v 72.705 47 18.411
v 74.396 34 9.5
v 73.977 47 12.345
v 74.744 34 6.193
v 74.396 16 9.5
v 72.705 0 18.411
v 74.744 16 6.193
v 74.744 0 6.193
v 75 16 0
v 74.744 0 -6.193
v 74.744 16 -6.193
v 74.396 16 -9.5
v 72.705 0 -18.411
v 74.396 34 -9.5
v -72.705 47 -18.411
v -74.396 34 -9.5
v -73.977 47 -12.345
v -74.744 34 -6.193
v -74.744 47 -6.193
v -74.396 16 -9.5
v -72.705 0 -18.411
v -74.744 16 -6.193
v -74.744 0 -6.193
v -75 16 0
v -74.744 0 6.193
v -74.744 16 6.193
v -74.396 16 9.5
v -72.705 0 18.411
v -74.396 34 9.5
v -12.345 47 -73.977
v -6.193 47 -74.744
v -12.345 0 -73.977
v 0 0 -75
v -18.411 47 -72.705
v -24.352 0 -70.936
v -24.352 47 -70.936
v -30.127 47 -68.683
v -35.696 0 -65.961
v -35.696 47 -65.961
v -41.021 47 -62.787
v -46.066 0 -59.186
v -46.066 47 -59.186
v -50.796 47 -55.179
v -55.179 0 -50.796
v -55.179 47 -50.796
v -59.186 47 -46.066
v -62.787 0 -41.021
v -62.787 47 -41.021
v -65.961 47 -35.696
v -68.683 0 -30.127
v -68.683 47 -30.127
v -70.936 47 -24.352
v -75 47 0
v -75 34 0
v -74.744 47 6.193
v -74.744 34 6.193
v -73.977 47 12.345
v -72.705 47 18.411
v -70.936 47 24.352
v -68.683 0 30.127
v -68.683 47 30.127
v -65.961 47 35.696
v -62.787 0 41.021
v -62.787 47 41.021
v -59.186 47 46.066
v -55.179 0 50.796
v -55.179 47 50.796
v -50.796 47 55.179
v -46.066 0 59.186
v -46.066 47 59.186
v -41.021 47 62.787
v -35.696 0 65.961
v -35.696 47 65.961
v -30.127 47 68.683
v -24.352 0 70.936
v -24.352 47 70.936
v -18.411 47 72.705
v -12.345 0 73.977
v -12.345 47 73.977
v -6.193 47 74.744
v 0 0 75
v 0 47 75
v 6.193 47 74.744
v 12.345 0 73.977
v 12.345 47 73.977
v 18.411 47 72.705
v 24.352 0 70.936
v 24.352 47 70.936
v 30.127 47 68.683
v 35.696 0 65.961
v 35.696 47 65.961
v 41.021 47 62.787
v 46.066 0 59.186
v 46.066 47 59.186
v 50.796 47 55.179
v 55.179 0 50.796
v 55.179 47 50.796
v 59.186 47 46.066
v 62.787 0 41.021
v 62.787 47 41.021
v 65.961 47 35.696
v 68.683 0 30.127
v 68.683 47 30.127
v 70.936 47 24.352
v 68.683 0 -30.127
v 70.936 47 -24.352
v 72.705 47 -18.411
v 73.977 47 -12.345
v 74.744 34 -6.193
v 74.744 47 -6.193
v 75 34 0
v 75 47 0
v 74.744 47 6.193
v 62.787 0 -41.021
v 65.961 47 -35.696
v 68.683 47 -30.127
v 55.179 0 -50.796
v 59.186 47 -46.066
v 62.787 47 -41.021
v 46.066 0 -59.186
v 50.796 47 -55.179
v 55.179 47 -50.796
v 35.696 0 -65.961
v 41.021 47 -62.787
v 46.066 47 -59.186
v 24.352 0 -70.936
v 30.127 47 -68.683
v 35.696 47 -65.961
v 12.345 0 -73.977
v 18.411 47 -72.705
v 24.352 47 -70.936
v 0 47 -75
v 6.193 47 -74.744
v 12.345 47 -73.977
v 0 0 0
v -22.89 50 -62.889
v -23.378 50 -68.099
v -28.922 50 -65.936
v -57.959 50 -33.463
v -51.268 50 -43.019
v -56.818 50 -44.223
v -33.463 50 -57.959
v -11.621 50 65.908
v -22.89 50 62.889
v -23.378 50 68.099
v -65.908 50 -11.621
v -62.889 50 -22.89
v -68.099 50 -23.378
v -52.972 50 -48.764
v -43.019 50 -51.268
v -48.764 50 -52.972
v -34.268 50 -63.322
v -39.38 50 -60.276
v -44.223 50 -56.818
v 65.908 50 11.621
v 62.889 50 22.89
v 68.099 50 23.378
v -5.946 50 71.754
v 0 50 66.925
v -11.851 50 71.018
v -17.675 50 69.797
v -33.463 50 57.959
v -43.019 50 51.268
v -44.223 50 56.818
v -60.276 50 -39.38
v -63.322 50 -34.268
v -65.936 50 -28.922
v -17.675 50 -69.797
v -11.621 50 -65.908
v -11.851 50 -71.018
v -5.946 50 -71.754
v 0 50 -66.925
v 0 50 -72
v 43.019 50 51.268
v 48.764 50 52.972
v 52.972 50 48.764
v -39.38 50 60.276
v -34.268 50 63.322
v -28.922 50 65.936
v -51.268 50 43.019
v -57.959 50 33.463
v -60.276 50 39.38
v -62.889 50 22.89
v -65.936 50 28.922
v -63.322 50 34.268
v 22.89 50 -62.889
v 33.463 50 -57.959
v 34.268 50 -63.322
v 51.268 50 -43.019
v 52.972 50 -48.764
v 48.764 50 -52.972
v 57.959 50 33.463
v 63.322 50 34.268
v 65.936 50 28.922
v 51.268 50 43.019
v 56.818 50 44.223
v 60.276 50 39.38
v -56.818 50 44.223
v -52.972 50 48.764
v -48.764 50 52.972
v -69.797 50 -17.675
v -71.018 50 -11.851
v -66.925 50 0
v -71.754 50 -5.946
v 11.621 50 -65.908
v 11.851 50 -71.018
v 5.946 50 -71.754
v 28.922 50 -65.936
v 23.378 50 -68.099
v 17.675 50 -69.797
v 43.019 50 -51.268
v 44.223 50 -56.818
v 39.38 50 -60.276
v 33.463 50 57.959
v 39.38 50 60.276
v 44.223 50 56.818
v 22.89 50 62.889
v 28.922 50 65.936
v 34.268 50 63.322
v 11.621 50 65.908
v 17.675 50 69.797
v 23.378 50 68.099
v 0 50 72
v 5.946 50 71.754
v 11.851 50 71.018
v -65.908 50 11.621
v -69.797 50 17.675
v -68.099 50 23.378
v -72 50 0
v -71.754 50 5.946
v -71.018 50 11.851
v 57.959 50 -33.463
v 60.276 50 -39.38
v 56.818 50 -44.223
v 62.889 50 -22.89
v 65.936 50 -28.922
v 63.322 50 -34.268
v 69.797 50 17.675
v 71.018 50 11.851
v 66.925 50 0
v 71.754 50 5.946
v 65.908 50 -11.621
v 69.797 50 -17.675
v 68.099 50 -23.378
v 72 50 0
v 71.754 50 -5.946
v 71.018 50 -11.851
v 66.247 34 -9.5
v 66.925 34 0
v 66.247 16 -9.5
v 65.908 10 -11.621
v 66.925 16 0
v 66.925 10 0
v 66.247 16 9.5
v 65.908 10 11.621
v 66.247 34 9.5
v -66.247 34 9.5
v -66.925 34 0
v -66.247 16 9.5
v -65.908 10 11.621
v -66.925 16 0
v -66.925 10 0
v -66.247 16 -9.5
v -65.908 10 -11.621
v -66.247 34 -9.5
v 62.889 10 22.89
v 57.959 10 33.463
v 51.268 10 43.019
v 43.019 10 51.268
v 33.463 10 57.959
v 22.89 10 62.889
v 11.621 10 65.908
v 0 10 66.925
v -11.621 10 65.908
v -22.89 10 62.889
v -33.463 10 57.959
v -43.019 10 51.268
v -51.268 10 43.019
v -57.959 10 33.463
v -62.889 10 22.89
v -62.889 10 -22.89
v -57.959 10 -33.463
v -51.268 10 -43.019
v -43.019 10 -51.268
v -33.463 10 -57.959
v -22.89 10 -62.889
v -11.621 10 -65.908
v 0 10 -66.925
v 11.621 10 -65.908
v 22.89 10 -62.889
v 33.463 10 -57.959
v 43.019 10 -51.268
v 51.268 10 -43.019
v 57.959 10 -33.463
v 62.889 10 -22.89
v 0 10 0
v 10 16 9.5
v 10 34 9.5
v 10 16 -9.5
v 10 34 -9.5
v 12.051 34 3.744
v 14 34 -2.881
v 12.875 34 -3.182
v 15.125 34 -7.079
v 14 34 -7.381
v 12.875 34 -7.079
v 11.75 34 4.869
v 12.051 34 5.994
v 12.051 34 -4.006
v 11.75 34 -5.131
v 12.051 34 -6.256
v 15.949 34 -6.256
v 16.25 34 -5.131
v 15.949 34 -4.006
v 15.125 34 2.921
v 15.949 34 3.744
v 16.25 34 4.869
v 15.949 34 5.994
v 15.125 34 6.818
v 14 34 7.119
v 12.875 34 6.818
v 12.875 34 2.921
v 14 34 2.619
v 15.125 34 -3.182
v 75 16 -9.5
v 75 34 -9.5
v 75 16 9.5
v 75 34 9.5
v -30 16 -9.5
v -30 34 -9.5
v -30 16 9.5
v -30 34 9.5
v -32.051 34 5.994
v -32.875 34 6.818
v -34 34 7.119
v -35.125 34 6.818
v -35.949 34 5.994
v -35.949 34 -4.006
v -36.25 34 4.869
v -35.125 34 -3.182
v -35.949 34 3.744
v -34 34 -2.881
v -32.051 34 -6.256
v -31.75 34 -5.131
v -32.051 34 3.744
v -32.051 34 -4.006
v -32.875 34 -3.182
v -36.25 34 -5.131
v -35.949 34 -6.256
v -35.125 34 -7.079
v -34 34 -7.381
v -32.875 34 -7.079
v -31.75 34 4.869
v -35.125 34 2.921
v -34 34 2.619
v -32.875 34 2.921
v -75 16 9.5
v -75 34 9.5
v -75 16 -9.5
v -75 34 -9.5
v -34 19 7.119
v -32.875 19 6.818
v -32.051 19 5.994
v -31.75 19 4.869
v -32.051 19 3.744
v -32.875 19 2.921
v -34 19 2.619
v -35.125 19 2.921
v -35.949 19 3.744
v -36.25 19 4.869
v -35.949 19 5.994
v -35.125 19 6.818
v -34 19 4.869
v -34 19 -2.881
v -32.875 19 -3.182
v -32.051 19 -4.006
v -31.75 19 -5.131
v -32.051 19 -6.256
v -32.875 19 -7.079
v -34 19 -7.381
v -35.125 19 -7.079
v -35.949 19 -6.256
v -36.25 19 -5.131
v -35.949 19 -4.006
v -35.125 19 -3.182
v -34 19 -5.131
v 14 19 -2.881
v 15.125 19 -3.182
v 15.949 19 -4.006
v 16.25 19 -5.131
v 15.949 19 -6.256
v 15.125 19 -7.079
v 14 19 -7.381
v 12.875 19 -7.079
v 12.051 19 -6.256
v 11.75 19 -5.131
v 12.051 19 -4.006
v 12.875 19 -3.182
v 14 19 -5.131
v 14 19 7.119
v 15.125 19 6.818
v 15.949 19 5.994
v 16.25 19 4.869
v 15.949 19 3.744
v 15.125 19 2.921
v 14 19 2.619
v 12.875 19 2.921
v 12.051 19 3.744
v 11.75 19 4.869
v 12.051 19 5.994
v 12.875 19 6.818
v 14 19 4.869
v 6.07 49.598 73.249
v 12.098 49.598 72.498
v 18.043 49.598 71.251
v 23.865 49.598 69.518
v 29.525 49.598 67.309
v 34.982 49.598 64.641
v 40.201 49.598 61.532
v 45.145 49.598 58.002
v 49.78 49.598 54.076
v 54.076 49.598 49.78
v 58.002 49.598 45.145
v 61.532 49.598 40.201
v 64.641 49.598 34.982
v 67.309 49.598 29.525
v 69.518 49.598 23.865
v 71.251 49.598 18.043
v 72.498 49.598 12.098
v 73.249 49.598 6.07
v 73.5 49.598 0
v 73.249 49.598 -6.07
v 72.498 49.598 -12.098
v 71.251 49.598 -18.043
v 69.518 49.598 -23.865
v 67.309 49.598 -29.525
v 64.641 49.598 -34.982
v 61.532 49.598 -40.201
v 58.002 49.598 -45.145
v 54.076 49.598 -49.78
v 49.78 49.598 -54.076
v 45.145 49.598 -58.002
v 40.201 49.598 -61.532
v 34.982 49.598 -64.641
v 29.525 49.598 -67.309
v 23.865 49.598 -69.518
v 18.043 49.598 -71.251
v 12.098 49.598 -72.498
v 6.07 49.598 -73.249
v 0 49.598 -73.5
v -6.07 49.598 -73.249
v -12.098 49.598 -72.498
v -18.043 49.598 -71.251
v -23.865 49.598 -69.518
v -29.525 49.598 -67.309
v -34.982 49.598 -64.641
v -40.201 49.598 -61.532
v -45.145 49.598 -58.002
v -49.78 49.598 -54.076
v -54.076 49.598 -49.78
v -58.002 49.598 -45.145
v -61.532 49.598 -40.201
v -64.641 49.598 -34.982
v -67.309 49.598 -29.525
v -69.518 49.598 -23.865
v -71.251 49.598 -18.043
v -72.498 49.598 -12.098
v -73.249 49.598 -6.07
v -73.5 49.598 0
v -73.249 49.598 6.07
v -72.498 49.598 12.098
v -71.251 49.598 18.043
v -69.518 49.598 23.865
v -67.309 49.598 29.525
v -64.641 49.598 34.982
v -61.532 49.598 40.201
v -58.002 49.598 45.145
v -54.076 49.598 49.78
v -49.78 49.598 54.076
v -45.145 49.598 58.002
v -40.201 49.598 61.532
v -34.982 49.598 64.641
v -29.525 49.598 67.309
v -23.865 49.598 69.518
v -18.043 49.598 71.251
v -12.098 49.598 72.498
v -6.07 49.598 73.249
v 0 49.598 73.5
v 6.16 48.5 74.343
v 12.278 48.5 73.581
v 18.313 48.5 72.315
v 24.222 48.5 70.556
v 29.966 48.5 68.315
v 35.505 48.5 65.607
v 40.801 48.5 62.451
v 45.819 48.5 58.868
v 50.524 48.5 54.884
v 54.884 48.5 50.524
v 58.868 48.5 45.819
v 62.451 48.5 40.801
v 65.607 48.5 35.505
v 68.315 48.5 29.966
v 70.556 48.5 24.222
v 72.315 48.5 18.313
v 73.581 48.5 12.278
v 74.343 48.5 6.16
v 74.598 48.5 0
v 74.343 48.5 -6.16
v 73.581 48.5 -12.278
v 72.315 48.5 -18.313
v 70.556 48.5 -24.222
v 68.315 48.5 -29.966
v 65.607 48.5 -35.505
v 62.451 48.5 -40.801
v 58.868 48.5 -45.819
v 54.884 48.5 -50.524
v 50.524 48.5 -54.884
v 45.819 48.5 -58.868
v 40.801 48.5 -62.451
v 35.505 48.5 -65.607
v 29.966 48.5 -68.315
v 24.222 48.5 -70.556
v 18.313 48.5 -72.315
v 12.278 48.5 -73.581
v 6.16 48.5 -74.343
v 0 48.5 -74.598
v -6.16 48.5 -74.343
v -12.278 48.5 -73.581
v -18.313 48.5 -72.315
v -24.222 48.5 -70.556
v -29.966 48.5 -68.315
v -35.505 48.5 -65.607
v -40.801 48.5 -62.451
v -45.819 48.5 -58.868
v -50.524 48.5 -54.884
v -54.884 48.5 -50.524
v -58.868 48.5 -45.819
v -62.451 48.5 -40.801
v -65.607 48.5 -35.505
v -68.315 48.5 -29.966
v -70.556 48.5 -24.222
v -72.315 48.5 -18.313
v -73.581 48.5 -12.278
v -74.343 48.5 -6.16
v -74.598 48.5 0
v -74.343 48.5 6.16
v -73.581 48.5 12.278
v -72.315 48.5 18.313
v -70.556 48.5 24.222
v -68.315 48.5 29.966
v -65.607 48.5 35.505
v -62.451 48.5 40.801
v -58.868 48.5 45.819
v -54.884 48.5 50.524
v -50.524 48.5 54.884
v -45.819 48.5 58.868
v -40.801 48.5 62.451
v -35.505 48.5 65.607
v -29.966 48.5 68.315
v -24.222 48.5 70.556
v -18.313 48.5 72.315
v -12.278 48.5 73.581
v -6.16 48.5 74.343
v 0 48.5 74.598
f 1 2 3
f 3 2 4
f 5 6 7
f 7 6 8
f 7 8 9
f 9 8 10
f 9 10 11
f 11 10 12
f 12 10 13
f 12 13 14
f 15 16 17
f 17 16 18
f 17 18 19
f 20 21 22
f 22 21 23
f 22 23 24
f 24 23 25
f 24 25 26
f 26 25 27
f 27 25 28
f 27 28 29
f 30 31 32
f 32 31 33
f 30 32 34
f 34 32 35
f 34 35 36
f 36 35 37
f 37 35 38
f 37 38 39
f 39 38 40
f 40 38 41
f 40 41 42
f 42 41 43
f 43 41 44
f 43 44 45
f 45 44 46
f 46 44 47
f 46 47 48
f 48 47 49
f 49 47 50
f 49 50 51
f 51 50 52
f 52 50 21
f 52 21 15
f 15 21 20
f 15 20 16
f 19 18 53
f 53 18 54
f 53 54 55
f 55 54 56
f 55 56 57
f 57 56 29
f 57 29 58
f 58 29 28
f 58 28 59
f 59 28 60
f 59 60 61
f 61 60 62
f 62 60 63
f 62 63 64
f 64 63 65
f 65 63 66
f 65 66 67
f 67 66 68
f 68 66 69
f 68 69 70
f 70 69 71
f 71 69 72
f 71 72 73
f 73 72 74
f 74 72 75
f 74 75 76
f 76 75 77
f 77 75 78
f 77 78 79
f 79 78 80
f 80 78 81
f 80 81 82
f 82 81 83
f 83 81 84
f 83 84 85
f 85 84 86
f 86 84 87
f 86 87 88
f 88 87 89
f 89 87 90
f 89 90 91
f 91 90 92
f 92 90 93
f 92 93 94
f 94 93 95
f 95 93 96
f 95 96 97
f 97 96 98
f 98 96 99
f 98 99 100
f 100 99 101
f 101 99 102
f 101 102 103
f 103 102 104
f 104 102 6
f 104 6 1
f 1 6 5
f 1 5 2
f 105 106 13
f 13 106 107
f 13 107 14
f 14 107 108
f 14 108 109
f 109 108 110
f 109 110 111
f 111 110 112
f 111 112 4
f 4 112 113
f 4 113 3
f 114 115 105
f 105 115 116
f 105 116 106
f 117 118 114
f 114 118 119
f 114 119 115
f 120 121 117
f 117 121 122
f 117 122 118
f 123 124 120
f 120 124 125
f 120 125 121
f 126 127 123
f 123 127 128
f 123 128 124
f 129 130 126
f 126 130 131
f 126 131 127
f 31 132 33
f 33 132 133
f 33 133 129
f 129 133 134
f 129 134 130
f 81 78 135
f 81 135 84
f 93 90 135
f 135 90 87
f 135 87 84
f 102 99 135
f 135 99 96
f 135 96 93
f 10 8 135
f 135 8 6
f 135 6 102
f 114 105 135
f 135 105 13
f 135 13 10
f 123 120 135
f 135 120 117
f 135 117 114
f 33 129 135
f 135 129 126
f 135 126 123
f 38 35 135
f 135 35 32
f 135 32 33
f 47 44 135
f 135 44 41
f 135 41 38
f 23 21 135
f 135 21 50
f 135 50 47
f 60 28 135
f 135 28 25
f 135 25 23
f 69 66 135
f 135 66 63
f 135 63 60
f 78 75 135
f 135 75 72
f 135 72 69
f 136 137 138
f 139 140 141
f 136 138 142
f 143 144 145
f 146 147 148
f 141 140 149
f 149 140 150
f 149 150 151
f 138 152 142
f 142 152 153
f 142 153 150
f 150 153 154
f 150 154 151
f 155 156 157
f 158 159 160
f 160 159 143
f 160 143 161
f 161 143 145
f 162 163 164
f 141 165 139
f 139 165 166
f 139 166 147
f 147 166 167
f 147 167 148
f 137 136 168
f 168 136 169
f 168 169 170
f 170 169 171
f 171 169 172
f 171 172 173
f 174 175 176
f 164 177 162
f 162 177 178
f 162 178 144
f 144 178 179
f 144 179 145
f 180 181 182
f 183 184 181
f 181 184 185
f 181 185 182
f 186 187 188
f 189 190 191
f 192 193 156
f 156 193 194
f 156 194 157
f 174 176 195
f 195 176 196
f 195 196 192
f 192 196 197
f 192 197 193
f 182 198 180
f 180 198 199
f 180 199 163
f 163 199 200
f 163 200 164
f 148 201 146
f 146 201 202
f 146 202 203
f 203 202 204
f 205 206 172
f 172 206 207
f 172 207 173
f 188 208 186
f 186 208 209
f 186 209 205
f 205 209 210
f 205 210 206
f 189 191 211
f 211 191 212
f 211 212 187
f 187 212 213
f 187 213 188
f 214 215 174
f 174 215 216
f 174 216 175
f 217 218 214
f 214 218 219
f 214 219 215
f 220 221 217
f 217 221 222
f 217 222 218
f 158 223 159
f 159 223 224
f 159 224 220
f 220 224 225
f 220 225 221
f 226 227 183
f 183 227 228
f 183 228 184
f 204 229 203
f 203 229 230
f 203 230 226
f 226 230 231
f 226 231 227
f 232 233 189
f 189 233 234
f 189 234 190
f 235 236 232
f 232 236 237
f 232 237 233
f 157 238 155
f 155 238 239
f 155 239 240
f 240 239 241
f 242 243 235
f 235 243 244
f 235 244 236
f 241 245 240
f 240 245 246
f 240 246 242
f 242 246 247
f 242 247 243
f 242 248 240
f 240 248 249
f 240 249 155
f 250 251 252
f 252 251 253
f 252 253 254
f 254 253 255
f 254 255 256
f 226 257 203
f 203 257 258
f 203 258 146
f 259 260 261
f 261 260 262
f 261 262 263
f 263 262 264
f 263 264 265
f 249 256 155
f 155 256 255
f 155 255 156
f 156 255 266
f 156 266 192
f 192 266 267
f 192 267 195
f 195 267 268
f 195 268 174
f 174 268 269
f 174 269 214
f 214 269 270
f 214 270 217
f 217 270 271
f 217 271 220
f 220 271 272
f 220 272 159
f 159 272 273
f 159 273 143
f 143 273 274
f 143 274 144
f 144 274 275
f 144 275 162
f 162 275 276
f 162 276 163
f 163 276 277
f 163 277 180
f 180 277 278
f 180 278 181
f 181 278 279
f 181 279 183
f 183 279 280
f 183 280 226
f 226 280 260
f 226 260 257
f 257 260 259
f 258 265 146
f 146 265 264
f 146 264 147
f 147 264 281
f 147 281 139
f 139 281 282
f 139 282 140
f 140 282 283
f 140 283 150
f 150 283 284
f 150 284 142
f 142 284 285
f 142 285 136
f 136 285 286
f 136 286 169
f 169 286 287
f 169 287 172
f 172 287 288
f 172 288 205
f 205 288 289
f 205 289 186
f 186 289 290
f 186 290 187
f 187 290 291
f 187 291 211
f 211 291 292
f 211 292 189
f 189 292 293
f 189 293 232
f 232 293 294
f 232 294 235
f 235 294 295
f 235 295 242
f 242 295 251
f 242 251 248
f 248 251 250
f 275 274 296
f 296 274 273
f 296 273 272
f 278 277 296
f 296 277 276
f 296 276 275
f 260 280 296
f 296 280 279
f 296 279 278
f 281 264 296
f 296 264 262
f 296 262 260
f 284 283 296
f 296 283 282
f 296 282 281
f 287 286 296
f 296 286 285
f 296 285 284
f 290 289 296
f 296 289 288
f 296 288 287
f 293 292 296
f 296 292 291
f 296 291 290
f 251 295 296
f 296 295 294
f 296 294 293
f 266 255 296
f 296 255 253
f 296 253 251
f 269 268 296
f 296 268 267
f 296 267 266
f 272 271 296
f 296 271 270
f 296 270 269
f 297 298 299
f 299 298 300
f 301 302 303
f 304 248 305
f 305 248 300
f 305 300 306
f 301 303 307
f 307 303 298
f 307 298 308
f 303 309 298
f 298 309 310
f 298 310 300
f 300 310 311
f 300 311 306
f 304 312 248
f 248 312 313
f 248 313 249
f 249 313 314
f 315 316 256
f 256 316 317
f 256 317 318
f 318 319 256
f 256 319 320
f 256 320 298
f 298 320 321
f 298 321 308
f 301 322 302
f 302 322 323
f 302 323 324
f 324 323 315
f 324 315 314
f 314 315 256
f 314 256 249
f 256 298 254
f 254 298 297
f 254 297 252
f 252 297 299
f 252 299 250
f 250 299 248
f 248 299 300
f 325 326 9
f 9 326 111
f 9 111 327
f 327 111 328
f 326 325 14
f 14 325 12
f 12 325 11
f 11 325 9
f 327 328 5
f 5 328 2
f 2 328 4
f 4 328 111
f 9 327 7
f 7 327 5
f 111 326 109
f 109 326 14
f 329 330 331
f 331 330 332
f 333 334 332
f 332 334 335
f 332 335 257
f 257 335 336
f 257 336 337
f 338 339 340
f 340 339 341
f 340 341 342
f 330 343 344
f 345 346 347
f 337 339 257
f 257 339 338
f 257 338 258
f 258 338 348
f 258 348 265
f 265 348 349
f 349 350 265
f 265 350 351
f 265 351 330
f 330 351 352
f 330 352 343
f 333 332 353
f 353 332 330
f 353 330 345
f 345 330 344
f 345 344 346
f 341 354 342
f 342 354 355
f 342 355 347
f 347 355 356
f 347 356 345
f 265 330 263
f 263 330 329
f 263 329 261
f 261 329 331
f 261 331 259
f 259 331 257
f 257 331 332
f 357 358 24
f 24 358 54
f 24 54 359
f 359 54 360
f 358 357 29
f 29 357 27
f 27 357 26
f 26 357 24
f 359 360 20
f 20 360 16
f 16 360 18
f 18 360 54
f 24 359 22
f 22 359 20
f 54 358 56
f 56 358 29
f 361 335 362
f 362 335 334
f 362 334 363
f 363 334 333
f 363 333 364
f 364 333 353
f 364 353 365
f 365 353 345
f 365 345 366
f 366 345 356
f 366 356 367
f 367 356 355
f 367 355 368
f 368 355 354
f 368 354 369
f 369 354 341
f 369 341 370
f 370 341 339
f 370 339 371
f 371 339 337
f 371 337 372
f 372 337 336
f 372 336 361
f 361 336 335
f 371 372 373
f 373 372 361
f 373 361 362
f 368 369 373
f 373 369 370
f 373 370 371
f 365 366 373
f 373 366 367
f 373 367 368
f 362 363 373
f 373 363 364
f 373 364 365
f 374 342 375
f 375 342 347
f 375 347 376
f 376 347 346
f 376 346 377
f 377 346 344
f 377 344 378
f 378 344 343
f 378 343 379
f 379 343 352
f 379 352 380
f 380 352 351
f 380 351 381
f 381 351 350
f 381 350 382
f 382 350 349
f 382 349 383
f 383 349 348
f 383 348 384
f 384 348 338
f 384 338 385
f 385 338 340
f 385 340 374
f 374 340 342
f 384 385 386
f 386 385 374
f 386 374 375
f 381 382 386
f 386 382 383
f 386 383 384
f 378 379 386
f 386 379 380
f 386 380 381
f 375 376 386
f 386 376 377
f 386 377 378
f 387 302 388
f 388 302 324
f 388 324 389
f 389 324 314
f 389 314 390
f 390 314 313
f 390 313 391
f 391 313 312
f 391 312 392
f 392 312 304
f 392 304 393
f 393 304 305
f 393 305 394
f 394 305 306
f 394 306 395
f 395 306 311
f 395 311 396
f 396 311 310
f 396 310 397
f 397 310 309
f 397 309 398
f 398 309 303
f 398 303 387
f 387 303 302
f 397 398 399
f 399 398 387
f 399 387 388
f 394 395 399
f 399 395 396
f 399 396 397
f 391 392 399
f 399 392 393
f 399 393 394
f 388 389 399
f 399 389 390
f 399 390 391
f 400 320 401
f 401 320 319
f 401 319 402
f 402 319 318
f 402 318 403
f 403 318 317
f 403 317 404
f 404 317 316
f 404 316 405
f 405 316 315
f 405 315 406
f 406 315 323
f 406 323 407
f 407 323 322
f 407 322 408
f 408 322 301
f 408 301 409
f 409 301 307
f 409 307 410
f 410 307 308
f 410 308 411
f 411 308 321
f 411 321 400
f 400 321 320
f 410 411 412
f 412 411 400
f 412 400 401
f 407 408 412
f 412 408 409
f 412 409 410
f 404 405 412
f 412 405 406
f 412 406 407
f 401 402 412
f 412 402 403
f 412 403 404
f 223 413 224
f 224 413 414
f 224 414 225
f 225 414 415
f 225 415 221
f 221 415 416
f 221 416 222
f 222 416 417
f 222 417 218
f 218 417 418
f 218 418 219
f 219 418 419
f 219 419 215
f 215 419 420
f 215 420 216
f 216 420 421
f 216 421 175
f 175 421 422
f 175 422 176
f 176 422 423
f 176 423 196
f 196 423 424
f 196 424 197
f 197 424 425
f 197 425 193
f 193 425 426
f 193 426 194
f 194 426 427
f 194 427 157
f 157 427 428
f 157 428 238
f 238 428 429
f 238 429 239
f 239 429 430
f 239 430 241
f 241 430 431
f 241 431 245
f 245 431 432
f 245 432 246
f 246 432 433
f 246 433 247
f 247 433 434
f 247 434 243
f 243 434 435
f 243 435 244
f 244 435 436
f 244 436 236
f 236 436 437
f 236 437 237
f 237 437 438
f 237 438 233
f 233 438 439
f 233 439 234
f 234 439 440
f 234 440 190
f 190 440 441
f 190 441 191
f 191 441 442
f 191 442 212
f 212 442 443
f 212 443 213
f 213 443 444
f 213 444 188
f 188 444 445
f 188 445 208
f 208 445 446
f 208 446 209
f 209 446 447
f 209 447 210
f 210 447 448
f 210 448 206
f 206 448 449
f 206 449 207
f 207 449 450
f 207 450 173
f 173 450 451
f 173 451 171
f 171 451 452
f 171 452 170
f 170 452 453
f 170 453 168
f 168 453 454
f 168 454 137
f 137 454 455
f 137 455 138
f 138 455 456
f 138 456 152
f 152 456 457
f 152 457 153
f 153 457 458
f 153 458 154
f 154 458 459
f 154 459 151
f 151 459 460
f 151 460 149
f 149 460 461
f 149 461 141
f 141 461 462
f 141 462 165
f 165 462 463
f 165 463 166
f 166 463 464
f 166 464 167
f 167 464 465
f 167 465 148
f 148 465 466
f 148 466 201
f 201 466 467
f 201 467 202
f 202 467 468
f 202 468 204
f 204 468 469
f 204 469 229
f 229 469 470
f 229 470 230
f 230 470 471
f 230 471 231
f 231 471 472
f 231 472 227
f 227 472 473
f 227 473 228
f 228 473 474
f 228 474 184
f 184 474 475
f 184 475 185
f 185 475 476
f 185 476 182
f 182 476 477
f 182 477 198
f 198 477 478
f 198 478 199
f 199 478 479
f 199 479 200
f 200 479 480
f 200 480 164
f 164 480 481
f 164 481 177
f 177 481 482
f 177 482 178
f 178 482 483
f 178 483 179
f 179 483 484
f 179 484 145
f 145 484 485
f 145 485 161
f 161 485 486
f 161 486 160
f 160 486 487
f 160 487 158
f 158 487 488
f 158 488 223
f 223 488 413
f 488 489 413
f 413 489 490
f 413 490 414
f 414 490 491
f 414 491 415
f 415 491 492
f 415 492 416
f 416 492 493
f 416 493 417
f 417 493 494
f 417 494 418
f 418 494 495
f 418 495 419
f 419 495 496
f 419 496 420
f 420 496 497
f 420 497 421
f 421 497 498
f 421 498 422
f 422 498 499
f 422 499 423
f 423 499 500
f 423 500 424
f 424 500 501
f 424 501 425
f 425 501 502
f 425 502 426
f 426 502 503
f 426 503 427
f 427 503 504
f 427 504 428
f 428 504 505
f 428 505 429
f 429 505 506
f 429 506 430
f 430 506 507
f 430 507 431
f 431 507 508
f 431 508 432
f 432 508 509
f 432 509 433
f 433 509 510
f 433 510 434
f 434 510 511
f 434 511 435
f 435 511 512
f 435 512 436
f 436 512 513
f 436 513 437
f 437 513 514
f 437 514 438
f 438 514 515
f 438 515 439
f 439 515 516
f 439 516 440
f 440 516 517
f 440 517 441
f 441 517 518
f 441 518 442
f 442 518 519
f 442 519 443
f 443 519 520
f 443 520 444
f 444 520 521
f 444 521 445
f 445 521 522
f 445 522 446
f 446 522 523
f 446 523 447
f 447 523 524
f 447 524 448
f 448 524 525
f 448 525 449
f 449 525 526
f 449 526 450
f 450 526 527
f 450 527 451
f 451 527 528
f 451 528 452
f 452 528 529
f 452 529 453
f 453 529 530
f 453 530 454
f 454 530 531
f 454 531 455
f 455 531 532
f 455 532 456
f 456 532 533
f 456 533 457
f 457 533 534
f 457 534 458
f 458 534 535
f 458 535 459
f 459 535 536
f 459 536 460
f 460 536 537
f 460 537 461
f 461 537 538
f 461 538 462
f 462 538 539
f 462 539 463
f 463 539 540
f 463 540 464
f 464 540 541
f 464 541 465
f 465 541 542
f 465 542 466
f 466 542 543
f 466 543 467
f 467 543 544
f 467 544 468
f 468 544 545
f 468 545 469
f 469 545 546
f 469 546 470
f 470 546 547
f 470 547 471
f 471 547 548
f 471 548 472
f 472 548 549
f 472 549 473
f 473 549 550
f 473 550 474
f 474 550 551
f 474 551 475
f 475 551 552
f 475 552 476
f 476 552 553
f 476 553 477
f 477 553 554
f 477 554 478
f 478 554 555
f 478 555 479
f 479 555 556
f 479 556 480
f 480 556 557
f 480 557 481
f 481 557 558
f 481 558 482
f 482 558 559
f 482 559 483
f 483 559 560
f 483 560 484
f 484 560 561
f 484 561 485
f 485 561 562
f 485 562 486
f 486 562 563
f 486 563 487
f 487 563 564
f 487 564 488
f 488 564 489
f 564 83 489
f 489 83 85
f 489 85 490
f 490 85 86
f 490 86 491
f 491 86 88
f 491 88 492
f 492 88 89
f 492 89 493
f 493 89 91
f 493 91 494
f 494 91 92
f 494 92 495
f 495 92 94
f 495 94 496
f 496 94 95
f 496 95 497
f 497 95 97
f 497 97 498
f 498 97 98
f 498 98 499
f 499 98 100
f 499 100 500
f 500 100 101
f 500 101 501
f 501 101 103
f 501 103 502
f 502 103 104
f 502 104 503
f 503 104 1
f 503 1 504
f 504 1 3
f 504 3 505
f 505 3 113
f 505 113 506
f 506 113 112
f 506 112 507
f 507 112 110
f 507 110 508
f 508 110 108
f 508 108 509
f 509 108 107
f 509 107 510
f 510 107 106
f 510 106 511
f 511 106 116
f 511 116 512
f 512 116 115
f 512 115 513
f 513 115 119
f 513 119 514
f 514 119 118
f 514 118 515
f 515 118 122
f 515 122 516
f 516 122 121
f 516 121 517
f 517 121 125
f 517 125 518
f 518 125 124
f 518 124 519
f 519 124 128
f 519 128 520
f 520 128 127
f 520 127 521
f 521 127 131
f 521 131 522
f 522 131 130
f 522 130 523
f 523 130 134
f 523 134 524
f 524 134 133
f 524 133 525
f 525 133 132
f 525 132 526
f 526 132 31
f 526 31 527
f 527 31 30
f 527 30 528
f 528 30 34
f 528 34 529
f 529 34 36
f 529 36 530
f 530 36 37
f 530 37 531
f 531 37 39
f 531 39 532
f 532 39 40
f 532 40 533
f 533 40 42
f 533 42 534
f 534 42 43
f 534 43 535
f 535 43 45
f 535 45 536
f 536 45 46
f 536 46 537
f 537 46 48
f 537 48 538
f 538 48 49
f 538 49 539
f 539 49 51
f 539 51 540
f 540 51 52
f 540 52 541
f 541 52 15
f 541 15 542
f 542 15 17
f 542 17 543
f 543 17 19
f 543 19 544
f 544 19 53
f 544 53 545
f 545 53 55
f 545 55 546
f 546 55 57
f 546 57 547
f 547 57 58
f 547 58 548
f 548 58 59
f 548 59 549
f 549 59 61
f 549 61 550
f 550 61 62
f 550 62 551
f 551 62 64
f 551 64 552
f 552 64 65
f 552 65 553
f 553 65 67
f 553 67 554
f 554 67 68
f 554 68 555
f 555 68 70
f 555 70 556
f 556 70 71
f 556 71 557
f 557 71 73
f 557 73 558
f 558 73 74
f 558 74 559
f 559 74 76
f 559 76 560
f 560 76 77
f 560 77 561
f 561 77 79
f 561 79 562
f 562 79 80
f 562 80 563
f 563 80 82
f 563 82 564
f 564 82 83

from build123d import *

# Parameters (mm, degrees)
SKETCH1_R           = 75
BOSS_EXTRUDE3_DEPTH = 10
SKETCH1_4_R         = 75
SKETCH1_4_R_2       = 66.925057636
BOSS_EXTRUDE4_DEPTH = 50
SKETCH3_W           = 19
SKETCH3_H           = 18
BOSS_EXTRUDE5_DEPTH = 65
SKETCH4_W           = 19
SKETCH4_H           = 18
BOSS_EXTRUDE6_DEPTH = 45
SKETCH5_R           = 2.25
CUT_EXTRUDE1_DEPTH  = 15
FILLET2_R           = 3


with BuildPart() as part:
    # Sketch1 → Boss-Extrude3 (new body)
    with BuildSketch(Plane(origin=(0, 0, 0), x_dir=(1, 0, 0), z_dir=(0, 1, 0))):
        Circle(SKETCH1_R)
    extrude(amount=BOSS_EXTRUDE3_DEPTH)

    # Sketch1<4> → Boss-Extrude4 (add)
    with BuildSketch(Plane(origin=(0, 0, 0), x_dir=(1, 0, 0), z_dir=(0, 1, 0))):
        Circle(SKETCH1_4_R)
        Circle(SKETCH1_4_R_2, mode=Mode.SUBTRACT)
    extrude(amount=BOSS_EXTRUDE4_DEPTH)

    # Sketch3 → Boss-Extrude5 (add)
    with BuildSketch(Plane(origin=(75, 50, 0), x_dir=(0, 0, -1), z_dir=(1, 0, 0))):
        with Locations((0, -25)):
            Rectangle(SKETCH3_W, SKETCH3_H)
    extrude(amount=-BOSS_EXTRUDE5_DEPTH)

    # Sketch4 → Boss-Extrude6 (add)
    with BuildSketch(Plane(origin=(-75, 50, 0), x_dir=(0, 0, 1), z_dir=(-1, 0, 0))):
        with Locations((0, -25)):
            Rectangle(SKETCH4_W, SKETCH4_H)
    extrude(amount=-BOSS_EXTRUDE6_DEPTH)

    # Sketch5 → Cut-Extrude1 (cut)
    with BuildSketch(Plane(origin=(0, 34, 0), x_dir=(1, 0, 0), z_dir=(0, 1, 0))):
        with Locations((14, 5.130777808)):
            Circle(SKETCH5_R)
        with Locations((14, -4.869222192)):
            Circle(SKETCH5_R)
        with Locations((-34, 5.130777808)):
            Circle(SKETCH5_R)
        with Locations((-34, -4.869222192)):
            Circle(SKETCH5_R)
    extrude(amount=-CUT_EXTRUDE1_DEPTH, mode=Mode.SUBTRACT)

    # Fillet2
    fillet2_edges = [part.edges().sort_by_distance(p)[0] for p in [
        (-75, 50, 0),
    ]]
    fillet(fillet2_edges, radius=FILLET2_R)


solid = part.part
